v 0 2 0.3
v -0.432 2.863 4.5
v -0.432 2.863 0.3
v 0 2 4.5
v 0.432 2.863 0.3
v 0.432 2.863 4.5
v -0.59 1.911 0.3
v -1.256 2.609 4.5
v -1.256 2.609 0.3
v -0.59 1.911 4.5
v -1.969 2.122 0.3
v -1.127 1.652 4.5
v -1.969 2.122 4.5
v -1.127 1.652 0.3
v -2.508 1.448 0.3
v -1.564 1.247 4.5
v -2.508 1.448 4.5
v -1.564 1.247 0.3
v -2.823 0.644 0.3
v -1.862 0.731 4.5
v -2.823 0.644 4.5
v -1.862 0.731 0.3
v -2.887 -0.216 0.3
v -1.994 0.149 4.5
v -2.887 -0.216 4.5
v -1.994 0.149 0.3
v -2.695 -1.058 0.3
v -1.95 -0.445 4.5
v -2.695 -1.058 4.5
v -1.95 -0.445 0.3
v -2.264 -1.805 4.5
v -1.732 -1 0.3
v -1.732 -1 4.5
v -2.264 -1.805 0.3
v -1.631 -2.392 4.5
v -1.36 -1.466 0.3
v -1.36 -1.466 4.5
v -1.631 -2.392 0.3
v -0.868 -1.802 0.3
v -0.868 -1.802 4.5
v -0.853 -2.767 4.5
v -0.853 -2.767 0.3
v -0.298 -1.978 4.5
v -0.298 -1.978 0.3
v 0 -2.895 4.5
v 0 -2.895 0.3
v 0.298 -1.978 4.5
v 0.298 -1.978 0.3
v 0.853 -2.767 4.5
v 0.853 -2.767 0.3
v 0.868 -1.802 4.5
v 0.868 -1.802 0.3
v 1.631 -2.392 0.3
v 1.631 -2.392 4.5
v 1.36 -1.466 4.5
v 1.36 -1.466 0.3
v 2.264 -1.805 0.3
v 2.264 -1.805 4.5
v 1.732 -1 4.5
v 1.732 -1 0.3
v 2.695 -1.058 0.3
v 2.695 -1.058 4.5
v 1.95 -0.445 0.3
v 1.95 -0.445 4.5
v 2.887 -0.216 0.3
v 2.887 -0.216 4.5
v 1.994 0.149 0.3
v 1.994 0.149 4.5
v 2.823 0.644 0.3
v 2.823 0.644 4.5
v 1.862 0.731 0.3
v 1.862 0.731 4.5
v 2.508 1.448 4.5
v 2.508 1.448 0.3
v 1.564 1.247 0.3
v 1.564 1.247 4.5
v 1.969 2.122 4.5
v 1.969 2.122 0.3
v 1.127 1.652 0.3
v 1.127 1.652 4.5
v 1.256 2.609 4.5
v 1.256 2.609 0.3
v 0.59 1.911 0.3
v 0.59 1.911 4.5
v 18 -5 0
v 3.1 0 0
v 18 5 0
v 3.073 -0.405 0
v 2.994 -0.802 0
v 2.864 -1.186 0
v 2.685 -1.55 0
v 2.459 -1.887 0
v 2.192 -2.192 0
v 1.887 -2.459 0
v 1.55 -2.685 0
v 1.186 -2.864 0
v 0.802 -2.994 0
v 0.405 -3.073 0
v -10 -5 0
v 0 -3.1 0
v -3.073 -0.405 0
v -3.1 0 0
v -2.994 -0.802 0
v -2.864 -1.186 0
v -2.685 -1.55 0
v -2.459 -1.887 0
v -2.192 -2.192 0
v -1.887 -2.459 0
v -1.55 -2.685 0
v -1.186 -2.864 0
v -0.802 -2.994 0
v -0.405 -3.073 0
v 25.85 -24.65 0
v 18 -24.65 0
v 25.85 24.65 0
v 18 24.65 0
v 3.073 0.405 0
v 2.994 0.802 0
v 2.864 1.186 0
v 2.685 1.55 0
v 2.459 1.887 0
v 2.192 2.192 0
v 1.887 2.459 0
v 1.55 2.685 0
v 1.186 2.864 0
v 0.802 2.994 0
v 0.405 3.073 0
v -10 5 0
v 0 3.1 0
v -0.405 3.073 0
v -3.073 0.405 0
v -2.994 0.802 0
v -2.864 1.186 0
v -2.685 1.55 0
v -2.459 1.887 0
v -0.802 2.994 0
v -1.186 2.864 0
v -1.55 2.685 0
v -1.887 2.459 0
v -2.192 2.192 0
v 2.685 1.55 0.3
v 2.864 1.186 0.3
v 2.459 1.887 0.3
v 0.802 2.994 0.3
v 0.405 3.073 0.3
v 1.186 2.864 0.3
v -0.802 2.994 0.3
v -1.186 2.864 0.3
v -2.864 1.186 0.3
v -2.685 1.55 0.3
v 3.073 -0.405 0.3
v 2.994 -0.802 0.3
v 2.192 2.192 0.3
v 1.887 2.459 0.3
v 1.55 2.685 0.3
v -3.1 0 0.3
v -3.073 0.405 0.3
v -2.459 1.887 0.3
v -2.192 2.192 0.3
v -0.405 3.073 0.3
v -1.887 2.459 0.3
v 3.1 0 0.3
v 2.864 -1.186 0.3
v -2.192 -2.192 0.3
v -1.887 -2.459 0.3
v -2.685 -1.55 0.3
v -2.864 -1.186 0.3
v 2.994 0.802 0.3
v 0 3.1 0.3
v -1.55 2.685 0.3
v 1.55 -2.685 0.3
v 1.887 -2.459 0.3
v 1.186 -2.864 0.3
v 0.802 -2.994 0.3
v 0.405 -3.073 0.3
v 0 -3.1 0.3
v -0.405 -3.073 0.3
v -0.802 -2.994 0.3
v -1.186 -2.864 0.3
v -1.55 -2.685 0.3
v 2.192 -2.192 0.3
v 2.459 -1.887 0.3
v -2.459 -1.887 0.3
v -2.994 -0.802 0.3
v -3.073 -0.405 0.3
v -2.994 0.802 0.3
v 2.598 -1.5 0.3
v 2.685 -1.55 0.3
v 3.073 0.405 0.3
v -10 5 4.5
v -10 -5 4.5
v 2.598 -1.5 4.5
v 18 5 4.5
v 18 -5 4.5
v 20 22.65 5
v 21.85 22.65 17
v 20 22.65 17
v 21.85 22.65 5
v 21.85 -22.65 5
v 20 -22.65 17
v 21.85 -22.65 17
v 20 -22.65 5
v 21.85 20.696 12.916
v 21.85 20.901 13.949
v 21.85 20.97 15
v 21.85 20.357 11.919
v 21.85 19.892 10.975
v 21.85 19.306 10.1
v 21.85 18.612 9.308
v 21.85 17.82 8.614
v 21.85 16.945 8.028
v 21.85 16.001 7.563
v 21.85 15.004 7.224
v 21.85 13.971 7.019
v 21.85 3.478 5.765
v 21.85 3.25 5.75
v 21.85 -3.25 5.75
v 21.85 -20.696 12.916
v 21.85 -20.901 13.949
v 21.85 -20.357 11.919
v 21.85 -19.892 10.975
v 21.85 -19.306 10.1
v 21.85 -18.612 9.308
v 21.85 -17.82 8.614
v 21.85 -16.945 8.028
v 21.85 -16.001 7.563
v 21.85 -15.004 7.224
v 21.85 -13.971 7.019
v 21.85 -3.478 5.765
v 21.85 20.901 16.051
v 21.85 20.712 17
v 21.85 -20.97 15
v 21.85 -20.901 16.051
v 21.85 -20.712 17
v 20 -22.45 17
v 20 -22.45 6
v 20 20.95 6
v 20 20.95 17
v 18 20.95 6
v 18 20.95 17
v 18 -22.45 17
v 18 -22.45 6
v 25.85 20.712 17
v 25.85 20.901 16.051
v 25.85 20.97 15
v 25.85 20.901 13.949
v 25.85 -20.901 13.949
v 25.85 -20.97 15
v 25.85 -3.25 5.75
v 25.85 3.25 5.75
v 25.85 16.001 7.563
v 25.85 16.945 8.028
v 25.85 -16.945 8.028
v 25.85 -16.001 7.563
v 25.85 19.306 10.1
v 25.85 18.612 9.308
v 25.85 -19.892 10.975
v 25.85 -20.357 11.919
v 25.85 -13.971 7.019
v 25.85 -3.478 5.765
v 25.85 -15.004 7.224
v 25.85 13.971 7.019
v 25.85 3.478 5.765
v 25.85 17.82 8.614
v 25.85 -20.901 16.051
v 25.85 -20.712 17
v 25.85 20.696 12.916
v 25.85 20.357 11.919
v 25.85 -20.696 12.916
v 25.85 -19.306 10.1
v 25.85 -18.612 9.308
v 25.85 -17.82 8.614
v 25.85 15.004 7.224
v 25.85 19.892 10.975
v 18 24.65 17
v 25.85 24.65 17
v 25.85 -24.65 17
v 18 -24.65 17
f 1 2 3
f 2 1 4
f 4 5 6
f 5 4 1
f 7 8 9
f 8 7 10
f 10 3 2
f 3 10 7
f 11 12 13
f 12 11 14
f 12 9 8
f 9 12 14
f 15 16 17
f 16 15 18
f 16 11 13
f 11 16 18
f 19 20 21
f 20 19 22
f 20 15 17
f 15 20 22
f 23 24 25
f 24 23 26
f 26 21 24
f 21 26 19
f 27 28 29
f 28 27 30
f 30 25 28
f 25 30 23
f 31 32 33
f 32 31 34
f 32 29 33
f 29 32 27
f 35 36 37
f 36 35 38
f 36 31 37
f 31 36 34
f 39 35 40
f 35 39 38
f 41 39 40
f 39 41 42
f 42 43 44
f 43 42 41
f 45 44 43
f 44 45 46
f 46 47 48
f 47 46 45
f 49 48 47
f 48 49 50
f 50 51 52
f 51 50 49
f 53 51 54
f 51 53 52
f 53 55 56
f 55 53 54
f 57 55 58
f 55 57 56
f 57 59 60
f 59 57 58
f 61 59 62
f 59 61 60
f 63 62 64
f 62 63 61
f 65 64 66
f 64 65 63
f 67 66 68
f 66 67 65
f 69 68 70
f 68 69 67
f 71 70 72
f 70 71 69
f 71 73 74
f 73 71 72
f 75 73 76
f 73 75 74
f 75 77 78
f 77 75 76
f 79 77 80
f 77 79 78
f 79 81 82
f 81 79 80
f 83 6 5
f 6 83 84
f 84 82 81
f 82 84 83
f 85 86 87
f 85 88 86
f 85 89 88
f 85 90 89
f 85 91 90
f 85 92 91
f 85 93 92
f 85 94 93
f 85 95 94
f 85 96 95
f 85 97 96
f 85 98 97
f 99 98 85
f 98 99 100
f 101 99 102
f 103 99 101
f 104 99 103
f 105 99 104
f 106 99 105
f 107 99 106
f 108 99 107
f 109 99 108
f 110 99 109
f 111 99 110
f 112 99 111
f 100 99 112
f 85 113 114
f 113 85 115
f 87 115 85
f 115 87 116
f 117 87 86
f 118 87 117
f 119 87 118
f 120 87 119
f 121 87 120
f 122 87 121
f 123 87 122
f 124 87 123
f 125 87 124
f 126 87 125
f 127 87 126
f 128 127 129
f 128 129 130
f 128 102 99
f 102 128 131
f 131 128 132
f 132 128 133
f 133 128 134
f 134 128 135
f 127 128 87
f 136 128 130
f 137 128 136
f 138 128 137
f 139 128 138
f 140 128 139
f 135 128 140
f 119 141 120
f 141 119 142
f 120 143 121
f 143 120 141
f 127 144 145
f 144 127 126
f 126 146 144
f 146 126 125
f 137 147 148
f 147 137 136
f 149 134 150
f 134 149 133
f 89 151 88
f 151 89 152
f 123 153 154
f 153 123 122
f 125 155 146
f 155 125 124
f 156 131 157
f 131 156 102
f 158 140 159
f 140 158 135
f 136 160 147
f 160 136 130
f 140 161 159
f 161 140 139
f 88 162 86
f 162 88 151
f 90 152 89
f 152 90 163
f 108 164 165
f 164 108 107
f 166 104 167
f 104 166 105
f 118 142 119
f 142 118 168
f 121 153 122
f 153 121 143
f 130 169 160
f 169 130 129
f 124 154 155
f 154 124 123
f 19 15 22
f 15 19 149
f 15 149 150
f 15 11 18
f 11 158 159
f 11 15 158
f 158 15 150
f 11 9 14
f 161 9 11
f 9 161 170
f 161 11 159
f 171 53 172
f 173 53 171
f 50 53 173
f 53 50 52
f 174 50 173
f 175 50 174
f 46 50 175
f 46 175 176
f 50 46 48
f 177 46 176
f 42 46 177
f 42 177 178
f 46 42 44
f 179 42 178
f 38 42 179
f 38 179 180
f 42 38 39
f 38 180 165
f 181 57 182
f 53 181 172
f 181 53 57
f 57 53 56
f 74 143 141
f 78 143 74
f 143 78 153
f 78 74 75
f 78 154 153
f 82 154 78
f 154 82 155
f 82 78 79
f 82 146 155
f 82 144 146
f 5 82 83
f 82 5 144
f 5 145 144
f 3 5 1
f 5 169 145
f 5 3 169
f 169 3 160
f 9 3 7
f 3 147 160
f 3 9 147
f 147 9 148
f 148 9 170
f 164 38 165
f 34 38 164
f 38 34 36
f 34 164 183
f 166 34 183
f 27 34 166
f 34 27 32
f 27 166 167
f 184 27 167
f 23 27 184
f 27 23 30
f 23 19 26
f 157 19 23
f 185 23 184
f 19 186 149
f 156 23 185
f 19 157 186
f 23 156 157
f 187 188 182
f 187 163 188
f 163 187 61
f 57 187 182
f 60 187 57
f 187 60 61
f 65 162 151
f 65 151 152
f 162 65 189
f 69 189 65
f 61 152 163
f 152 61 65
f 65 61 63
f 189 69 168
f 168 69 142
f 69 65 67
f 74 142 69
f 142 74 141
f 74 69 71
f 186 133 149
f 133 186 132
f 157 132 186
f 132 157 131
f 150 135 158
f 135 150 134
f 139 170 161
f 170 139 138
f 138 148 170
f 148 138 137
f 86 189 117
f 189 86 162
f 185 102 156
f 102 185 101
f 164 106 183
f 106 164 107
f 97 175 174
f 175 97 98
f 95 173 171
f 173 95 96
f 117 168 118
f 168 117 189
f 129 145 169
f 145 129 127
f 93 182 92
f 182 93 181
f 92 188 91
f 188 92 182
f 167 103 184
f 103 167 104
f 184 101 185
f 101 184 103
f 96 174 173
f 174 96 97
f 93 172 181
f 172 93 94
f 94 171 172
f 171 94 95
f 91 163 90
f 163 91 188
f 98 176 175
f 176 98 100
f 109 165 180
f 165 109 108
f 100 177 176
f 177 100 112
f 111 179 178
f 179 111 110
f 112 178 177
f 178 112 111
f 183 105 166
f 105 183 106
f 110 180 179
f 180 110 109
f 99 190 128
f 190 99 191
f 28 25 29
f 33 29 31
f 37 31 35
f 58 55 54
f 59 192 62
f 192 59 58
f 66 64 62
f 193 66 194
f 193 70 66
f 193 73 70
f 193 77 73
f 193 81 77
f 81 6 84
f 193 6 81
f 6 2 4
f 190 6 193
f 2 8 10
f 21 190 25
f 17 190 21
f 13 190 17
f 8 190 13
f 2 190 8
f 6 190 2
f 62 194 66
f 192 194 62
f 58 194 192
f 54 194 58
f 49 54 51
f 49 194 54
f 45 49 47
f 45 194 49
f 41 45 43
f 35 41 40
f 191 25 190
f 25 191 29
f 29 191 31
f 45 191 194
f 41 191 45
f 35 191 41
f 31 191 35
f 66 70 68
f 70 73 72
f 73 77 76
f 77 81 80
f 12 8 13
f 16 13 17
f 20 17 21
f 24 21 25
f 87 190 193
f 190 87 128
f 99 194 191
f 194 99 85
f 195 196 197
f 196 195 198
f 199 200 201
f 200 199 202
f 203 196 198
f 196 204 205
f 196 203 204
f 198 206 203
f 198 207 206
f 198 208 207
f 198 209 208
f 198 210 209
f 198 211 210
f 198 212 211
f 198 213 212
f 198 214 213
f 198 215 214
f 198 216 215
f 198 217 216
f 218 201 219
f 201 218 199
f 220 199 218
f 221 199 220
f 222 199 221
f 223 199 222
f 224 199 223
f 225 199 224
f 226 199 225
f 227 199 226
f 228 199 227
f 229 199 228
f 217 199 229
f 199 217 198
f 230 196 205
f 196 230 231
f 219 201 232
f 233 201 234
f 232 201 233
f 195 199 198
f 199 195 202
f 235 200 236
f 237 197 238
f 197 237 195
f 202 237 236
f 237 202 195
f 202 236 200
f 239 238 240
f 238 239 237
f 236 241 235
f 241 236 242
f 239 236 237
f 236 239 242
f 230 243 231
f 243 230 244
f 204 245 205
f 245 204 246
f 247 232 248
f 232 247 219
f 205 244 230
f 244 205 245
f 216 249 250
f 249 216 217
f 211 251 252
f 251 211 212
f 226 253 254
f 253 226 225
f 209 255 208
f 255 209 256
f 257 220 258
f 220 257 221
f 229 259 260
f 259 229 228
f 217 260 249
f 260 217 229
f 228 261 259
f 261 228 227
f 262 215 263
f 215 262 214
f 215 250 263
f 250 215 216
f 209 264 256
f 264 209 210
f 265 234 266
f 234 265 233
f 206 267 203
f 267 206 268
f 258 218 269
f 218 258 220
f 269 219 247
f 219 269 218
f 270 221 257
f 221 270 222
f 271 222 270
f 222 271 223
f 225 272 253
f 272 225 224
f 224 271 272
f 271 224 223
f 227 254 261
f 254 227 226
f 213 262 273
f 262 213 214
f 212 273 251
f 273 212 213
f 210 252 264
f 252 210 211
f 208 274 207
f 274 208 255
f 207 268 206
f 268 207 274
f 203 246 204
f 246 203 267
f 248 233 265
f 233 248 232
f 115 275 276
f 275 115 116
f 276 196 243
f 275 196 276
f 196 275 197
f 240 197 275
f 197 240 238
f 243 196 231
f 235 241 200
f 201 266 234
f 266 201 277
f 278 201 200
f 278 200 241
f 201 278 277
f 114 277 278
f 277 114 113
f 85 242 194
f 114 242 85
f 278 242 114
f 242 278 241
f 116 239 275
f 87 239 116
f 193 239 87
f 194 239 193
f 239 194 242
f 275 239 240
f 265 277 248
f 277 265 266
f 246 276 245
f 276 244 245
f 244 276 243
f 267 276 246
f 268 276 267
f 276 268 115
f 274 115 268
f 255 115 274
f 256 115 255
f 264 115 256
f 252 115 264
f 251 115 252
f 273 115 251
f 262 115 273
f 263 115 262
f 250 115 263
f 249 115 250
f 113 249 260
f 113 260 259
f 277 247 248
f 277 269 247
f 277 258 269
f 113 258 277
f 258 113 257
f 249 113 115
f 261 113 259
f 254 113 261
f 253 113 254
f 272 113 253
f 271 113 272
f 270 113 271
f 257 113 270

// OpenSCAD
$fn=48;

slop = .2;
board = [45.1 + slop, 1.65 + slop, 20];
electronics = [43.2 + slop, 5, 14];
electronics_offset = [1.7, -electronics.y, 1];
sensor_diameter = 15.9 + slop;
sensor_distance = 9.94 - slop;
bump_diameter   = 3.5;
bump_distance   = 10-bump_diameter*2;
bump_offset     = 7.5;
tooth_width = 1;
tooth_length = 1;

difference() {
  translate([-10,-5,0])
  cube([35,10,4.5]);
  servo_socket(6);
}

sensor_bracket();

module servo_socket(d) {
  echo(d);
  difference() {
    cylinder(r=d/2,h=4.9);
    
    for (r = [0:360/21:360])
    rotate([0,0,r])
    translate([0, d/2-tooth_length, -.001])
    linear_extrude(5)
    polygon([
      [0,0],
      [-tooth_width/2,tooth_length],
      [tooth_width/2,tooth_length],
      [0,0]
    ]);
  }
  cylinder(r=d/2+.1,h=.3);
}

module sensor_bracket() {
  translate([30/2+5,board.x/2+2,4])
  rotate([0,0,-90])
  difference() {
    translate([0,-2,-4])
    cube([board.x + 4, board.y + 6, board.z / 2 + 7]);
    translate([2,0,1])
    sensor();
  }
}


module sensor() {
  cube(board);
  
  // electronic bits
  translate([0,.01,0])
  translate(electronics_offset)
  cube(electronics);
  
  translate([sensor_diameter/2+(board.x-sensor_diameter*2-sensor_distance)/2,board.y-.001,board.z/2])
  rotate([-90,0,0])
  linear_extrude(12)
  hull() {
    for (t = [0,1])
    translate([(sensor_distance+sensor_diameter)*t,0,0])
    circle(sensor_diameter/2);

    translate([(sensor_diameter+sensor_distance-bump_diameter-bump_distance)/2,0,0])
    for (t = [0,1])
    translate([(bump_distance+bump_diameter)*t,bump_offset,0])
    circle(bump_diameter/2);
  }
}
